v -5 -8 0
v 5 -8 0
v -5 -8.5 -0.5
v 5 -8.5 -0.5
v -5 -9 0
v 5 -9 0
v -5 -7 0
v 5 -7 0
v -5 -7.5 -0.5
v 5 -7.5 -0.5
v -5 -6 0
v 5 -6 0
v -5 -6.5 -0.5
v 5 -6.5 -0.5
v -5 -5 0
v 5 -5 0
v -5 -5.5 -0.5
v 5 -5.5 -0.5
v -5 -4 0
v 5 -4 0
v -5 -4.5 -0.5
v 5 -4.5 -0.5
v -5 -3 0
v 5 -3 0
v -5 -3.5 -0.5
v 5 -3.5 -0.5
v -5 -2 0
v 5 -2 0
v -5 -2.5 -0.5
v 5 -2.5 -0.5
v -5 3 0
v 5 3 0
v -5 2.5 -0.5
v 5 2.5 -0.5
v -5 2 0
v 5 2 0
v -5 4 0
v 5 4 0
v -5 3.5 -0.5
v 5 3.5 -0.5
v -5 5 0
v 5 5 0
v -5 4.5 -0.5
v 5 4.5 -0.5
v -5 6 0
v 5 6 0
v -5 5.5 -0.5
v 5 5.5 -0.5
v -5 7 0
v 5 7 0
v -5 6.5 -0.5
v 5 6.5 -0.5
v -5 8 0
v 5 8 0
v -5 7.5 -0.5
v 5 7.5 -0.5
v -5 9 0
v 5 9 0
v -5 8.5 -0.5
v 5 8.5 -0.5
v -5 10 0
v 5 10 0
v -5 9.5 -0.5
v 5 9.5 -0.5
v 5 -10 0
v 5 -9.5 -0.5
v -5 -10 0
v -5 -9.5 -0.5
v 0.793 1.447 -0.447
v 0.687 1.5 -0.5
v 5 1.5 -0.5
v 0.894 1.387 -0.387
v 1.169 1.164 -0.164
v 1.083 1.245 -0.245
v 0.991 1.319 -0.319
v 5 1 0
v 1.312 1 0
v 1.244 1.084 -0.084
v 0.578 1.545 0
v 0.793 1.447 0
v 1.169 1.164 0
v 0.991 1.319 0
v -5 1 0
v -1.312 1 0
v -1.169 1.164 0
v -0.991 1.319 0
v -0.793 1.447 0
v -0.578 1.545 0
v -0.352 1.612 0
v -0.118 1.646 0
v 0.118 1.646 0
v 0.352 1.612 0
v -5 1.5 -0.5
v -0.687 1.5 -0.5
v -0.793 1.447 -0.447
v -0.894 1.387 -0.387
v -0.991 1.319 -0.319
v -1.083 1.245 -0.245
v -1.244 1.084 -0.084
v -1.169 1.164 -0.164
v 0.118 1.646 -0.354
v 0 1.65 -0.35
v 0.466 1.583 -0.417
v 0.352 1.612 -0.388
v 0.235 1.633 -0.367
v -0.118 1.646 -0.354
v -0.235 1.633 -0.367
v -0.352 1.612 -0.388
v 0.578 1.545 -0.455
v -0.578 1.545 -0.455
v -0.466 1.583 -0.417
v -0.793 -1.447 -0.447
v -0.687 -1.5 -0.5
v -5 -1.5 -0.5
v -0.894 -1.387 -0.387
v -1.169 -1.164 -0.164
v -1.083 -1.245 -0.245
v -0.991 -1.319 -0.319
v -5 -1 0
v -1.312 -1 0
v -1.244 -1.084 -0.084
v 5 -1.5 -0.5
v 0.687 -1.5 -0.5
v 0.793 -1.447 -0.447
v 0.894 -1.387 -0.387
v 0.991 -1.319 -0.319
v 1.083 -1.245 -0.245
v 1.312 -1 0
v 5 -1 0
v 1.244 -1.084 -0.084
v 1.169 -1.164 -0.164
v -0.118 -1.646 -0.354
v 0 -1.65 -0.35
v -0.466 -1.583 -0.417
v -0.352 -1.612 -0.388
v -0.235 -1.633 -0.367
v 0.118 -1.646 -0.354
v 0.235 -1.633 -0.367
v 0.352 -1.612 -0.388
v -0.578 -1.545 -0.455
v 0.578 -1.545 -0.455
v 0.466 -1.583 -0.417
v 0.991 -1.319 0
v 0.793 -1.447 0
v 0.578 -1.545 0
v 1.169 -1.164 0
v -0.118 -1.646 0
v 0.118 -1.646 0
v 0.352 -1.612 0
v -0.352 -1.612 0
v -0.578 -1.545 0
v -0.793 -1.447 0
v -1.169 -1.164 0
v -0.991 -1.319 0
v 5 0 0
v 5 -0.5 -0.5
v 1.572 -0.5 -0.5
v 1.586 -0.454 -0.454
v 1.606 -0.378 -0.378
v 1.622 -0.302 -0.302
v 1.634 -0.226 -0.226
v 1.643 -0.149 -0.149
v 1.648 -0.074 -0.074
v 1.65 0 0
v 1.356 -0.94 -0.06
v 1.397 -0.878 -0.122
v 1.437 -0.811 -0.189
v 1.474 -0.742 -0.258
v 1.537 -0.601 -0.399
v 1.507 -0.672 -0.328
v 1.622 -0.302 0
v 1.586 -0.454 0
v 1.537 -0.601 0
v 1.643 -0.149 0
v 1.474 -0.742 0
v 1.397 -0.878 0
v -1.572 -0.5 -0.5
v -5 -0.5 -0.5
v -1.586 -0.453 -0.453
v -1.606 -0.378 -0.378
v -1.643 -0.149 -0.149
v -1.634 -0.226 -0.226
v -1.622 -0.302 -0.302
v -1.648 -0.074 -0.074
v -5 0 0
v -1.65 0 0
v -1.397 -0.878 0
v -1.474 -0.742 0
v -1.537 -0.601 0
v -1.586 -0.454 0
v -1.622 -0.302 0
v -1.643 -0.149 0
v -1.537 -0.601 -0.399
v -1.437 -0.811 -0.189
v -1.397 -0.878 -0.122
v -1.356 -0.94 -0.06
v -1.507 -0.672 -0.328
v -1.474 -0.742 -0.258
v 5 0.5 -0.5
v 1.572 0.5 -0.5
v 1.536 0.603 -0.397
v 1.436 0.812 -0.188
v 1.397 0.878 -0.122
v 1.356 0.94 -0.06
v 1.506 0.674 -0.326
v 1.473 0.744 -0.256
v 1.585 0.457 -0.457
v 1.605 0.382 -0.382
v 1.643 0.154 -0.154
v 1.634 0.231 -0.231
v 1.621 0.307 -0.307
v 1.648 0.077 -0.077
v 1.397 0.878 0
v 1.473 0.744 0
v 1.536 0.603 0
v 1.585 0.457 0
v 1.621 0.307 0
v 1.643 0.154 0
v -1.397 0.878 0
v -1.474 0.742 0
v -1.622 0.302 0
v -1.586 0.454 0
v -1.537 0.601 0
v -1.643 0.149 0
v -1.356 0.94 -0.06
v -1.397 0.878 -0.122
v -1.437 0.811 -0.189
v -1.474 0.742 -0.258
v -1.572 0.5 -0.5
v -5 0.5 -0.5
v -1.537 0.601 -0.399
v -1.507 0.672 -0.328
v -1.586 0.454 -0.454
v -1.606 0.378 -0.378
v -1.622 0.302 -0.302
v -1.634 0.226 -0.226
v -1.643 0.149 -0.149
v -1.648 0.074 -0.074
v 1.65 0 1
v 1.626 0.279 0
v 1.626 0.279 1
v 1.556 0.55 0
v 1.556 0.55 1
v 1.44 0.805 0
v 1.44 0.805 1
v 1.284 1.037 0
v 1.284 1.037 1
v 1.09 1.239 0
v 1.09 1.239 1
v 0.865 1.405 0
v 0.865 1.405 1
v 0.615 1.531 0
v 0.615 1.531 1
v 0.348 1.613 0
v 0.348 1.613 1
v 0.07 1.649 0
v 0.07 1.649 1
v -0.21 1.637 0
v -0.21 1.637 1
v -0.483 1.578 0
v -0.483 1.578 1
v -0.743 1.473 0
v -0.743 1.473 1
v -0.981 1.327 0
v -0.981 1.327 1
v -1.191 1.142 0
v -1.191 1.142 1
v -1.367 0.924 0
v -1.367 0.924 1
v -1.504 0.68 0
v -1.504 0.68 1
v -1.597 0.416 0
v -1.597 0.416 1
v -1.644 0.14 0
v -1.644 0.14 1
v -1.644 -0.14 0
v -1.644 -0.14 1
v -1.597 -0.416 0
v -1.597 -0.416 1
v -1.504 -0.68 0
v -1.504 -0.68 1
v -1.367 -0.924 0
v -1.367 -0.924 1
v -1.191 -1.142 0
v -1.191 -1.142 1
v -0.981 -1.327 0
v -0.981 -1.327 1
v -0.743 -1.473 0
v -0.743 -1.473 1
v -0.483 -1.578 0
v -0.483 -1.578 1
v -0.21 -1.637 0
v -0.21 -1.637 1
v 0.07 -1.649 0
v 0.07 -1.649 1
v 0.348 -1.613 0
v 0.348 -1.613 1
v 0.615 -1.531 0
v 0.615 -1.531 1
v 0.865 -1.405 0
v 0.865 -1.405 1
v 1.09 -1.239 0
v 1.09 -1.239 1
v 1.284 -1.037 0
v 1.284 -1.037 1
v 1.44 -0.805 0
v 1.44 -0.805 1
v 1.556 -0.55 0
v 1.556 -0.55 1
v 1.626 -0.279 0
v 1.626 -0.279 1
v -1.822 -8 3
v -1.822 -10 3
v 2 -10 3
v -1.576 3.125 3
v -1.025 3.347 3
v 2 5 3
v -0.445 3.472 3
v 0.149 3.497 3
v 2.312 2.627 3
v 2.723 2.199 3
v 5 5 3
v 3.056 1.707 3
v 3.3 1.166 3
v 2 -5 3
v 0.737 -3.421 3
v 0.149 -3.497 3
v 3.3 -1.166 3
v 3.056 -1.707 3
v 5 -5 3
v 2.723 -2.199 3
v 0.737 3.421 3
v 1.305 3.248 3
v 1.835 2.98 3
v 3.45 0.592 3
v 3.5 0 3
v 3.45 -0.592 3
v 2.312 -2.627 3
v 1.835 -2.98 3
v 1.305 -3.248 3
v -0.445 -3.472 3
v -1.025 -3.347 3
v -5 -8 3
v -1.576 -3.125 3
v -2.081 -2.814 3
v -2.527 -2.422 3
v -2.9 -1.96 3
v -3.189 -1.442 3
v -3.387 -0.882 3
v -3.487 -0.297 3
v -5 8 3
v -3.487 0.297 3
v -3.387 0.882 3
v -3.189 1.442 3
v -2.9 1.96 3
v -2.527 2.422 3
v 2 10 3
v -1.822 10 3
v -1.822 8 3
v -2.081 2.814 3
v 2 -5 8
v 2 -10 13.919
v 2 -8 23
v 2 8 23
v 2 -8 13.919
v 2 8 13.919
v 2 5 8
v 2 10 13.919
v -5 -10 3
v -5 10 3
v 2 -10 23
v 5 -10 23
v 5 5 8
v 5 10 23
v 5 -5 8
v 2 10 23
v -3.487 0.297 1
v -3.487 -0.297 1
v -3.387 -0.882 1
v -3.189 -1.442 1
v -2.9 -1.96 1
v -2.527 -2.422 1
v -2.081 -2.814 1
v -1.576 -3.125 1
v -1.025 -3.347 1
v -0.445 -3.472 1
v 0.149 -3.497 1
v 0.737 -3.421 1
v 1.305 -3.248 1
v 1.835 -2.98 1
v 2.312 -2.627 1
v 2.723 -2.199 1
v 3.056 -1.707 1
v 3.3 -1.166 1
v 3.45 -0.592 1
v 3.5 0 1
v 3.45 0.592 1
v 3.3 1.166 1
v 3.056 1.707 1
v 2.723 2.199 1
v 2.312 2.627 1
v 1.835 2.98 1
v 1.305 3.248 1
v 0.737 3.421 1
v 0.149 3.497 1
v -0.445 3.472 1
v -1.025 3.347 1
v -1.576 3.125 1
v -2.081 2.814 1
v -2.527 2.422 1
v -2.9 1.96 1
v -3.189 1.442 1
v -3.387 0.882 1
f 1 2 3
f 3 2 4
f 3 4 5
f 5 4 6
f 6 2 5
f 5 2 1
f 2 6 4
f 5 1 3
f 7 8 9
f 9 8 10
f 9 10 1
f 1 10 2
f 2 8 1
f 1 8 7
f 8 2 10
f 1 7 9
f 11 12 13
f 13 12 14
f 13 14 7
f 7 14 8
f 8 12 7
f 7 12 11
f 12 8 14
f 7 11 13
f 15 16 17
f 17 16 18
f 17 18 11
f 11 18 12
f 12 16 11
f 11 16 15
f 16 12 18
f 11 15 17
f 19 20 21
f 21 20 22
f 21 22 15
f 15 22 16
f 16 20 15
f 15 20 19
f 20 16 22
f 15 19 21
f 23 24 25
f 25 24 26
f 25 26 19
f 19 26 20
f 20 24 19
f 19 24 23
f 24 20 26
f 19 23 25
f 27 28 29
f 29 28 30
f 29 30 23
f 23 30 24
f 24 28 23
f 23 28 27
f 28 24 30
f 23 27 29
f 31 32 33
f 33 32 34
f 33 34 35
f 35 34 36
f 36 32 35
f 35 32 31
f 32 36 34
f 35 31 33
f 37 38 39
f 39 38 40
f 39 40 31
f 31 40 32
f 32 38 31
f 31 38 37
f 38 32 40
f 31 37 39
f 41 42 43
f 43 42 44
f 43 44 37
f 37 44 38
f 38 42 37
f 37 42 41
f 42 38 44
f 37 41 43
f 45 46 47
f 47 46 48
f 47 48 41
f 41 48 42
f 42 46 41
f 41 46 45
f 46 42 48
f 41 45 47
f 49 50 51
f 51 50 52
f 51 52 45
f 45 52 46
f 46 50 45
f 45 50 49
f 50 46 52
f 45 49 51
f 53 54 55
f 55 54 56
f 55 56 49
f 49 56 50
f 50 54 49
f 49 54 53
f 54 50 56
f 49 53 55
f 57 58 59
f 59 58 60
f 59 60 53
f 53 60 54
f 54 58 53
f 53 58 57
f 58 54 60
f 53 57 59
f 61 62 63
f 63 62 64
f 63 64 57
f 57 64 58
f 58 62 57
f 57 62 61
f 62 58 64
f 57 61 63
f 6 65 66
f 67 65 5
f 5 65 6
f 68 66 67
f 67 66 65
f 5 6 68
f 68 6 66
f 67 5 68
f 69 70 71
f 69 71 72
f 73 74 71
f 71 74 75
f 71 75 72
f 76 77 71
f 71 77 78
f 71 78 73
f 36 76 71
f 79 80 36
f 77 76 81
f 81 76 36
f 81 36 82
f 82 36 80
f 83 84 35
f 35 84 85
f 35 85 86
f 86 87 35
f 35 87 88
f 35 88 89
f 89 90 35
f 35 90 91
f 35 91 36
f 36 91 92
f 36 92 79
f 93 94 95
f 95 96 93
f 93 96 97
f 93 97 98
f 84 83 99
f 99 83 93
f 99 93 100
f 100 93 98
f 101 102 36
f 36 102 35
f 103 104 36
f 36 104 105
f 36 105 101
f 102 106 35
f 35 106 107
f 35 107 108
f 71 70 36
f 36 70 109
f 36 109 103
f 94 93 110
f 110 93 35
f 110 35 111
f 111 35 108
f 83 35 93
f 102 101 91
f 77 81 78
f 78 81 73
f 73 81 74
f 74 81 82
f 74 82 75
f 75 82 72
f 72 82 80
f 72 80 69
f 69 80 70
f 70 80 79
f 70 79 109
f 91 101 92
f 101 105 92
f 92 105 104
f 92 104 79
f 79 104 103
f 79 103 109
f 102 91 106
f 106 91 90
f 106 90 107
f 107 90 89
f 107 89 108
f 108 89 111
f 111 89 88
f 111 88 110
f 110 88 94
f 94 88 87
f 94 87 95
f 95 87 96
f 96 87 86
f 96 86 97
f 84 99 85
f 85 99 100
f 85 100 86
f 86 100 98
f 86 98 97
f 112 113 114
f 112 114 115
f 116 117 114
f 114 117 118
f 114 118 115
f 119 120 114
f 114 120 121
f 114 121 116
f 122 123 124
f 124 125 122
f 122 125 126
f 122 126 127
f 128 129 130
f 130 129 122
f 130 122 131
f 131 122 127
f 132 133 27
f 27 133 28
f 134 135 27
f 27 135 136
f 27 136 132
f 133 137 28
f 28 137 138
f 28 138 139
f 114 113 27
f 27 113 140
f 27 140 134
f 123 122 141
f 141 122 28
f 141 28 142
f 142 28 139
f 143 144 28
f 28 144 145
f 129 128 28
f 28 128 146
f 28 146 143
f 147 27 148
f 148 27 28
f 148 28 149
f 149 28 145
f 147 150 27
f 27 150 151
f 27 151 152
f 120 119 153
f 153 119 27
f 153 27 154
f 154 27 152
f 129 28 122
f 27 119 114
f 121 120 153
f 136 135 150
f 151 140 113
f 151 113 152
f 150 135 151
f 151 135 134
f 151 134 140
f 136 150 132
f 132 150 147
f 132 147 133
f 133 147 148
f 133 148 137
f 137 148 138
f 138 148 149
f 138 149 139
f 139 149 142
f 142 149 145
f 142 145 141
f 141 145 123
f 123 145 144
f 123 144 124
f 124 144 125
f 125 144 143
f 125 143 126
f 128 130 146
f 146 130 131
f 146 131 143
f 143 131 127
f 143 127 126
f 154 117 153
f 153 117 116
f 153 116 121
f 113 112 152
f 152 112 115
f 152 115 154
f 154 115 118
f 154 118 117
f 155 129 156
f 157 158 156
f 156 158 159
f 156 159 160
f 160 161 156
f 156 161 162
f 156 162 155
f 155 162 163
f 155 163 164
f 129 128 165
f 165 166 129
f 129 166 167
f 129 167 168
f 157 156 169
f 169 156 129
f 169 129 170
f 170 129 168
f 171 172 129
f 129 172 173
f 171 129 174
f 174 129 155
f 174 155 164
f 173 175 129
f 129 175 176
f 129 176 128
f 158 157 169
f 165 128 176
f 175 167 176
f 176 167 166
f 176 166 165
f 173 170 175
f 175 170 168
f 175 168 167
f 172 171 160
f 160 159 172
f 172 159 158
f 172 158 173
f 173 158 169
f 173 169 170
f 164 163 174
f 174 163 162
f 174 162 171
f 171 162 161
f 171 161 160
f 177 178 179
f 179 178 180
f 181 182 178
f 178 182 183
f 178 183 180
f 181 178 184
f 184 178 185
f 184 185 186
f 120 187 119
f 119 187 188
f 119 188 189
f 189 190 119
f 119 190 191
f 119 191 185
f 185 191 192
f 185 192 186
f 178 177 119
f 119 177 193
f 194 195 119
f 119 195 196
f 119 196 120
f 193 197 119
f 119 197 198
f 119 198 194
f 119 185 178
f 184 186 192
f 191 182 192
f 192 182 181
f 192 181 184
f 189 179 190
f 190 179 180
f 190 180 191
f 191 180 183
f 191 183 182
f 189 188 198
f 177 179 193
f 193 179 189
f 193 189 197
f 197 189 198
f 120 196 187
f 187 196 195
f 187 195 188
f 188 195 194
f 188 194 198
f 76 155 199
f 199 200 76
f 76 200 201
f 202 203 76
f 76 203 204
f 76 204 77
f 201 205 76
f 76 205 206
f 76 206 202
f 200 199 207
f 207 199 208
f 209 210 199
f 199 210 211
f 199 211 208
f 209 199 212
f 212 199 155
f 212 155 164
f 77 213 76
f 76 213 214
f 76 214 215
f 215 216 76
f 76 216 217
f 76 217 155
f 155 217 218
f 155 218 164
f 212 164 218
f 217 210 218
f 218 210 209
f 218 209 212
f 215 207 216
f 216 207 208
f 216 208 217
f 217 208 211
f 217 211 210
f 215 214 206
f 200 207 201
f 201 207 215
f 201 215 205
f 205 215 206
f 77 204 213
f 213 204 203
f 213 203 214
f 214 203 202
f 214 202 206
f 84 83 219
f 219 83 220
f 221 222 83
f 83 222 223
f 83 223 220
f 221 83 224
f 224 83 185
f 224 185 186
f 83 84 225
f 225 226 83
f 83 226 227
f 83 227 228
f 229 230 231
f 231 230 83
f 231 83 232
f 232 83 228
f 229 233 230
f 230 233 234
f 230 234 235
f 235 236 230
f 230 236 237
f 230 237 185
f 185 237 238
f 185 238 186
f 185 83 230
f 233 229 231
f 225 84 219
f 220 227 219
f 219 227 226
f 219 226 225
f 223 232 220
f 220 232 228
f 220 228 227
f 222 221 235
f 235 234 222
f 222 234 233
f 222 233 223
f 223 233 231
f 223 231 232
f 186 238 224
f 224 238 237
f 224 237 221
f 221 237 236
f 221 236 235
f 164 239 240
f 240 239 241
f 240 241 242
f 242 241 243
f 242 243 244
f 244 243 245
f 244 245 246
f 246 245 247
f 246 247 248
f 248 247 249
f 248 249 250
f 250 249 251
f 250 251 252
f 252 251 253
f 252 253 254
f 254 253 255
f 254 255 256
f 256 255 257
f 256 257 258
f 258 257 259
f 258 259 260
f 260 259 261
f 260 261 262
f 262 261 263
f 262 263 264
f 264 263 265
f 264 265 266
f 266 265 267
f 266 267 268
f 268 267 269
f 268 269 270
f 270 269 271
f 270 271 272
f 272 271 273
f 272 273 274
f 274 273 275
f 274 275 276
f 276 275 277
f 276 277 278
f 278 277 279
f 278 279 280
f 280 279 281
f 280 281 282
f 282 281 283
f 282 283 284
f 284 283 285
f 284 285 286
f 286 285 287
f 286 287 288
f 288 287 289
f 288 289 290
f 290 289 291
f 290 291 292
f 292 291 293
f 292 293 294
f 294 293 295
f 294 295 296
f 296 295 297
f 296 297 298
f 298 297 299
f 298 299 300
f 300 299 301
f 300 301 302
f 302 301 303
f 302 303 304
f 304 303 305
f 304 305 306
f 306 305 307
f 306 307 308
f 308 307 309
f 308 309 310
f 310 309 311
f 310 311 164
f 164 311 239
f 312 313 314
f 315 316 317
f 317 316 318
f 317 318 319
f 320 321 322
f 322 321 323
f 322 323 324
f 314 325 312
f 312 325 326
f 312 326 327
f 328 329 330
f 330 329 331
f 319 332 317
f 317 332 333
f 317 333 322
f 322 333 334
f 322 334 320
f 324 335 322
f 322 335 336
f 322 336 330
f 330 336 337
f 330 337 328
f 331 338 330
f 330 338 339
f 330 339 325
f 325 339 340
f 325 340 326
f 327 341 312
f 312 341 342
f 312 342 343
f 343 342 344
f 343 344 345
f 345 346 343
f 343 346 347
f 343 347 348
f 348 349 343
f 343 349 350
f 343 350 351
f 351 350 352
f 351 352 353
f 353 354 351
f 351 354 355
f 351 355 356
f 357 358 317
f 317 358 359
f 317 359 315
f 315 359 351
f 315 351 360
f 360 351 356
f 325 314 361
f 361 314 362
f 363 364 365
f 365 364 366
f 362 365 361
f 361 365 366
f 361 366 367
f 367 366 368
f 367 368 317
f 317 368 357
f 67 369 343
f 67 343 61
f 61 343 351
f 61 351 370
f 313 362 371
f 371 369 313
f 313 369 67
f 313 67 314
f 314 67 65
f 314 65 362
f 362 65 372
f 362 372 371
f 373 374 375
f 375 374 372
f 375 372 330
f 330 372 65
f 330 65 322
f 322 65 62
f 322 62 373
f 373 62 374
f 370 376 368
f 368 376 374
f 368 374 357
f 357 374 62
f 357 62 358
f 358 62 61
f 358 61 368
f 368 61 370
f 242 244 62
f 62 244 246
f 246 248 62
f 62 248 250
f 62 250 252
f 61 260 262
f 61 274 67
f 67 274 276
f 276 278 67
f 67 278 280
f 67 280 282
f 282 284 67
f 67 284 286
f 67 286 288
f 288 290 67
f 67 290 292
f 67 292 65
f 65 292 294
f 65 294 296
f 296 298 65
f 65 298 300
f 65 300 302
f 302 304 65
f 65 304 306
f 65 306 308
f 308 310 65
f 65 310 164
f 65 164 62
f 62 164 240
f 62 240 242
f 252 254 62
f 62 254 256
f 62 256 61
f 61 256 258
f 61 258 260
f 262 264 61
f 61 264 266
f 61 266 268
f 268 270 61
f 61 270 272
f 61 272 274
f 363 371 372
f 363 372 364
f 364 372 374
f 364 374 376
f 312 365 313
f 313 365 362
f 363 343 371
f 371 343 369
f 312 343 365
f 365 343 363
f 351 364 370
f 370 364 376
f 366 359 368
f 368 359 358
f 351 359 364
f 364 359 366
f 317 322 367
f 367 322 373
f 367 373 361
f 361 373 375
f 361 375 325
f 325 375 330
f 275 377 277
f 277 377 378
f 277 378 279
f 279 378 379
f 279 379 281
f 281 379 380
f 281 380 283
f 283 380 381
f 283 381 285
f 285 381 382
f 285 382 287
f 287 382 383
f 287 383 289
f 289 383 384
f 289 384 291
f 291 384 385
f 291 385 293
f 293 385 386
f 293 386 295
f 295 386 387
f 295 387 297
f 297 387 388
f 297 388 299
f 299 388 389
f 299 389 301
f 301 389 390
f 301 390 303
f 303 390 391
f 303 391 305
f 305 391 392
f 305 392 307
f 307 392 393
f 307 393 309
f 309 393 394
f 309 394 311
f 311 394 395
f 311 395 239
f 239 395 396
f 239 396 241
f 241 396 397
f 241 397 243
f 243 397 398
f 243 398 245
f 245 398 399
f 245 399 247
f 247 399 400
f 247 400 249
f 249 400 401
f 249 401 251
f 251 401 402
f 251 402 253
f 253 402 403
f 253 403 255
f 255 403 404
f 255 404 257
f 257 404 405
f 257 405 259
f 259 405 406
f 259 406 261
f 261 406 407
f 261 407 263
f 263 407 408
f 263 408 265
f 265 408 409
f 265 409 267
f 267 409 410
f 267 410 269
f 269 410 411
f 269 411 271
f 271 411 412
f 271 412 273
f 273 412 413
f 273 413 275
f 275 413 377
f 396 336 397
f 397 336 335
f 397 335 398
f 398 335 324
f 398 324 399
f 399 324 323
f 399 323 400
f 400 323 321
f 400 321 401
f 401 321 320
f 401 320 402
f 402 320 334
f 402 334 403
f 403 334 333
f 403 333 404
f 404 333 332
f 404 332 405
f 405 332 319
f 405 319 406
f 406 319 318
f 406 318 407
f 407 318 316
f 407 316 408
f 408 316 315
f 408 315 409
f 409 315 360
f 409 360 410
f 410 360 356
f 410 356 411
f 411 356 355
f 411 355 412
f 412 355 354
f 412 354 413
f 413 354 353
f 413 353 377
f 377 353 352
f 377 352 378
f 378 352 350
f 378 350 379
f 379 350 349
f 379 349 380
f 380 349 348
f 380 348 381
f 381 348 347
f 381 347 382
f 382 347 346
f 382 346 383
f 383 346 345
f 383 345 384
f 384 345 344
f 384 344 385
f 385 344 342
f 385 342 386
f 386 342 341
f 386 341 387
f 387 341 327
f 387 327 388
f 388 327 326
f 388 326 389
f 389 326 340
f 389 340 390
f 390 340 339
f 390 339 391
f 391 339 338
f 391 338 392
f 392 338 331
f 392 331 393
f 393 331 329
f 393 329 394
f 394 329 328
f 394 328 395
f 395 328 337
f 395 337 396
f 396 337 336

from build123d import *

# Parameters (mm, degrees)
SKETCH1_W              = 10
SKETCH1_H              = 20
BOSS_EXTRUDE1_DEPTH    = 3
SKETCH2_W              = 3
SKETCH2_H              = 20
BOSS_EXTRUDE2_DEPTH    = 20
BOSS_EXTRUDE3_DEPTH    = 2
BOSS_EXTRUDE4_START    = -20
BOSS_EXTRUDE4_DEPTH    = 2
SKETCH4_W              = 5
SKETCH4_H              = 10
CUT_EXTRUDE1_DEPTH     = 12
BOSS_EXTRUDE9_DEPTH    = 10
BOSS_EXTRUDE9_2_DEPTH  = 10
BOSS_EXTRUDE9_3_DEPTH  = 10
BOSS_EXTRUDE9_4_DEPTH  = 10
BOSS_EXTRUDE9_5_DEPTH  = 10
BOSS_EXTRUDE9_6_DEPTH  = 10
BOSS_EXTRUDE9_7_DEPTH  = 10
BOSS_EXTRUDE9_8_DEPTH  = 10
BOSS_EXTRUDE9_9_DEPTH  = 10
BOSS_EXTRUDE9_10_DEPTH = 10
BOSS_EXTRUDE9_11_DEPTH = 10
BOSS_EXTRUDE9_12_DEPTH = 10
BOSS_EXTRUDE9_13_DEPTH = 10
BOSS_EXTRUDE9_14_DEPTH = 10
BOSS_EXTRUDE9_15_DEPTH = 10
BOSS_EXTRUDE9_16_DEPTH = 10
BOSS_EXTRUDE9_17_DEPTH = 10
BOSS_EXTRUDE9_18_DEPTH = 10
BOSS_EXTRUDE9_19_DEPTH = 10
BOSS_EXTRUDE9_20_DEPTH = 10
SKETCH6_R              = 1.65
CUT_EXTRUDE2_DEPTH     = 12
SKETCH7_R              = 3.5
CUT_EXTRUDE3_DEPTH     = 2


with BuildPart() as part:
    # Sketch1 → Boss-Extrude1 (new body)
    with BuildSketch(Plane.XY):
        Rectangle(SKETCH1_W, SKETCH1_H)
    extrude(amount=BOSS_EXTRUDE1_DEPTH)

    # Sketch2 → Boss-Extrude2 (add)
    with BuildSketch(Plane.XY.offset(3)):
        with Locations((3.5, 0)):
            Rectangle(SKETCH2_W, SKETCH2_H)
    extrude(amount=BOSS_EXTRUDE2_DEPTH)

    # Sketch3 → Boss-Extrude3 (add)
    with BuildSketch(Plane.XZ.offset(10)):
        Polygon((2, 23), (-5, 3), (-1.821556985, 3), (2, 13.918734243), align=None)
    extrude(amount=-BOSS_EXTRUDE3_DEPTH)

    # Sketch3<2> → Boss-Extrude4 (add)
    with BuildSketch(Plane.XZ.offset(10).offset(BOSS_EXTRUDE4_START)):
        Polygon((2, 23), (-5, 3), (-1.821556985, 3), (2, 13.918734243), align=None)
    extrude(amount=BOSS_EXTRUDE4_DEPTH)

    # Sketch4 → Cut-Extrude1 (cut)
    with BuildSketch(Plane.ZY.offset(-2)):
        with Locations((5.5, 0)):
            Rectangle(SKETCH4_W, SKETCH4_H)
    extrude(amount=-CUT_EXTRUDE1_DEPTH, mode=Mode.SUBTRACT)


with BuildPart() as body_2:
    # Sketch5 → Boss-Extrude9 (new body)
    with BuildSketch(Plane(origin=(5, 0, 0), x_dir=(0, 0, -1), z_dir=(1, 0, 0))):
        Polygon((0.5, -9.5), (0, -9), (0, -10), align=None)
    extrude(amount=-BOSS_EXTRUDE9_DEPTH)


with BuildPart() as body_3:
    # Sketch5 → Boss-Extrude9 2 (new body)
    with BuildSketch(Plane(origin=(5, 0, 0), x_dir=(0, 0, -1), z_dir=(1, 0, 0))):
        Polygon((0.5, -0.5), (0, 0), (0, -1), align=None)
    extrude(amount=-BOSS_EXTRUDE9_2_DEPTH)


with BuildPart() as body_4:
    # Sketch5 → Boss-Extrude9 3 (new body)
    with BuildSketch(Plane(origin=(5, 0, 0), x_dir=(0, 0, -1), z_dir=(1, 0, 0))):
        Polygon((0.5, 0.5), (0, 1), (0, 0), align=None)
    extrude(amount=-BOSS_EXTRUDE9_3_DEPTH)


with BuildPart() as body_5:
    # Sketch5 → Boss-Extrude9 4 (new body)
    with BuildSketch(Plane(origin=(5, 0, 0), x_dir=(0, 0, -1), z_dir=(1, 0, 0))):
        Polygon((0.5, 1.5), (0, 2), (0, 1), align=None)
    extrude(amount=-BOSS_EXTRUDE9_4_DEPTH)


with BuildPart() as body_6:
    # Sketch5 → Boss-Extrude9 5 (new body)
    with BuildSketch(Plane(origin=(5, 0, 0), x_dir=(0, 0, -1), z_dir=(1, 0, 0))):
        Polygon((0, -8), (0, -9), (0.5, -8.5), align=None)
    extrude(amount=-BOSS_EXTRUDE9_5_DEPTH)


with BuildPart() as body_7:
    # Sketch5 → Boss-Extrude9 6 (new body)
    with BuildSketch(Plane(origin=(5, 0, 0), x_dir=(0, 0, -1), z_dir=(1, 0, 0))):
        Polygon((0, -7), (0, -8), (0.5, -7.5), align=None)
    extrude(amount=-BOSS_EXTRUDE9_6_DEPTH)


with BuildPart() as body_8:
    # Sketch5 → Boss-Extrude9 7 (new body)
    with BuildSketch(Plane(origin=(5, 0, 0), x_dir=(0, 0, -1), z_dir=(1, 0, 0))):
        Polygon((0, -6), (0, -7), (0.5, -6.5), align=None)
    extrude(amount=-BOSS_EXTRUDE9_7_DEPTH)


with BuildPart() as body_9:
    # Sketch5 → Boss-Extrude9 8 (new body)
    with BuildSketch(Plane(origin=(5, 0, 0), x_dir=(0, 0, -1), z_dir=(1, 0, 0))):
        Polygon((0, -5), (0, -6), (0.5, -5.5), align=None)
    extrude(amount=-BOSS_EXTRUDE9_8_DEPTH)


with BuildPart() as body_10:
    # Sketch5 → Boss-Extrude9 9 (new body)
    with BuildSketch(Plane(origin=(5, 0, 0), x_dir=(0, 0, -1), z_dir=(1, 0, 0))):
        Polygon((0, -4), (0, -5), (0.5, -4.5), align=None)
    extrude(amount=-BOSS_EXTRUDE9_9_DEPTH)


with BuildPart() as body_11:
    # Sketch5 → Boss-Extrude9 10 (new body)
    with BuildSketch(Plane(origin=(5, 0, 0), x_dir=(0, 0, -1), z_dir=(1, 0, 0))):
        Polygon((0, -3), (0, -4), (0.5, -3.5), align=None)
    extrude(amount=-BOSS_EXTRUDE9_10_DEPTH)


with BuildPart() as body_12:
    # Sketch5 → Boss-Extrude9 11 (new body)
    with BuildSketch(Plane(origin=(5, 0, 0), x_dir=(0, 0, -1), z_dir=(1, 0, 0))):
        Polygon((0, -2), (0, -3), (0.5, -2.5), align=None)
    extrude(amount=-BOSS_EXTRUDE9_11_DEPTH)


with BuildPart() as body_13:
    # Sketch5 → Boss-Extrude9 12 (new body)
    with BuildSketch(Plane(origin=(5, 0, 0), x_dir=(0, 0, -1), z_dir=(1, 0, 0))):
        Polygon((0, -1), (0, -2), (0.5, -1.5), align=None)
    extrude(amount=-BOSS_EXTRUDE9_12_DEPTH)


with BuildPart() as body_14:
    # Sketch5 → Boss-Extrude9 13 (new body)
    with BuildSketch(Plane(origin=(5, 0, 0), x_dir=(0, 0, -1), z_dir=(1, 0, 0))):
        Polygon((0, 3), (0, 2), (0.5, 2.5), align=None)
    extrude(amount=-BOSS_EXTRUDE9_13_DEPTH)


with BuildPart() as body_15:
    # Sketch5 → Boss-Extrude9 14 (new body)
    with BuildSketch(Plane(origin=(5, 0, 0), x_dir=(0, 0, -1), z_dir=(1, 0, 0))):
        Polygon((0, 4), (0, 3), (0.5, 3.5), align=None)
    extrude(amount=-BOSS_EXTRUDE9_14_DEPTH)


with BuildPart() as body_16:
    # Sketch5 → Boss-Extrude9 15 (new body)
    with BuildSketch(Plane(origin=(5, 0, 0), x_dir=(0, 0, -1), z_dir=(1, 0, 0))):
        Polygon((0, 5), (0, 4), (0.5, 4.5), align=None)
    extrude(amount=-BOSS_EXTRUDE9_15_DEPTH)


with BuildPart() as body_17:
    # Sketch5 → Boss-Extrude9 16 (new body)
    with BuildSketch(Plane(origin=(5, 0, 0), x_dir=(0, 0, -1), z_dir=(1, 0, 0))):
        Polygon((0, 6), (0, 5), (0.5, 5.5), align=None)
    extrude(amount=-BOSS_EXTRUDE9_16_DEPTH)


with BuildPart() as body_18:
    # Sketch5 → Boss-Extrude9 17 (new body)
    with BuildSketch(Plane(origin=(5, 0, 0), x_dir=(0, 0, -1), z_dir=(1, 0, 0))):
        Polygon((0, 7), (0, 6), (0.5, 6.5), align=None)
    extrude(amount=-BOSS_EXTRUDE9_17_DEPTH)


with BuildPart() as body_19:
    # Sketch5 → Boss-Extrude9 18 (new body)
    with BuildSketch(Plane(origin=(5, 0, 0), x_dir=(0, 0, -1), z_dir=(1, 0, 0))):
        Polygon((0, 8), (0, 7), (0.5, 7.5), align=None)
    extrude(amount=-BOSS_EXTRUDE9_18_DEPTH)


with BuildPart() as body_20:
    # Sketch5 → Boss-Extrude9 19 (new body)
    with BuildSketch(Plane(origin=(5, 0, 0), x_dir=(0, 0, -1), z_dir=(1, 0, 0))):
        Polygon((0, 9), (0, 8), (0.5, 8.5), align=None)
    extrude(amount=-BOSS_EXTRUDE9_19_DEPTH)


with BuildPart() as body_21:
    # Sketch5 → Boss-Extrude9 20 (new body)
    with BuildSketch(Plane(origin=(5, 0, 0), x_dir=(0, 0, -1), z_dir=(1, 0, 0))):
        Polygon((0, 10), (0, 9), (0.5, 9.5), align=None)
    extrude(amount=-BOSS_EXTRUDE9_20_DEPTH)


with BuildPart() as cut_extrude2_tool:
    # Sketch6 → Cut-Extrude2 (new body)
    with BuildSketch(Plane.XY.offset(3)):
        Circle(SKETCH6_R)
    extrude(amount=-CUT_EXTRUDE2_DEPTH)


with BuildPart() as part_1:
    add(part.part)

    # Cut-Extrude2: cut by cut_extrude2_tool
    add(cut_extrude2_tool.part, mode=Mode.SUBTRACT)

    # Sketch7 → Cut-Extrude3 (cut)
    with BuildSketch(Plane.XY.offset(3)):
        Circle(SKETCH7_R)
    extrude(amount=-CUT_EXTRUDE3_DEPTH, mode=Mode.SUBTRACT)


with BuildPart() as body_3_1:
    add(body_3.part)

    # Cut-Extrude2: cut by cut_extrude2_tool
    add(cut_extrude2_tool.part, mode=Mode.SUBTRACT)


with BuildPart() as body_4_1:
    add(body_4.part)

    # Cut-Extrude2: cut by cut_extrude2_tool
    add(cut_extrude2_tool.part, mode=Mode.SUBTRACT)


with BuildPart() as body_5_1:
    add(body_5.part)

    # Cut-Extrude2: cut by cut_extrude2_tool
    add(cut_extrude2_tool.part, mode=Mode.SUBTRACT)


with BuildPart() as body_13_1:
    add(body_13.part)

    # Cut-Extrude2: cut by cut_extrude2_tool
    add(cut_extrude2_tool.part, mode=Mode.SUBTRACT)


solid = Compound([body_2.part, body_6.part, body_7.part, body_8.part, body_9.part, body_10.part, body_11.part, body_12.part, body_14.part, body_15.part, body_16.part, body_17.part, body_18.part, body_19.part, body_20.part, body_21.part, part_1.part, body_3_1.part, body_4_1.part, body_5_1.part, body_13_1.part])
